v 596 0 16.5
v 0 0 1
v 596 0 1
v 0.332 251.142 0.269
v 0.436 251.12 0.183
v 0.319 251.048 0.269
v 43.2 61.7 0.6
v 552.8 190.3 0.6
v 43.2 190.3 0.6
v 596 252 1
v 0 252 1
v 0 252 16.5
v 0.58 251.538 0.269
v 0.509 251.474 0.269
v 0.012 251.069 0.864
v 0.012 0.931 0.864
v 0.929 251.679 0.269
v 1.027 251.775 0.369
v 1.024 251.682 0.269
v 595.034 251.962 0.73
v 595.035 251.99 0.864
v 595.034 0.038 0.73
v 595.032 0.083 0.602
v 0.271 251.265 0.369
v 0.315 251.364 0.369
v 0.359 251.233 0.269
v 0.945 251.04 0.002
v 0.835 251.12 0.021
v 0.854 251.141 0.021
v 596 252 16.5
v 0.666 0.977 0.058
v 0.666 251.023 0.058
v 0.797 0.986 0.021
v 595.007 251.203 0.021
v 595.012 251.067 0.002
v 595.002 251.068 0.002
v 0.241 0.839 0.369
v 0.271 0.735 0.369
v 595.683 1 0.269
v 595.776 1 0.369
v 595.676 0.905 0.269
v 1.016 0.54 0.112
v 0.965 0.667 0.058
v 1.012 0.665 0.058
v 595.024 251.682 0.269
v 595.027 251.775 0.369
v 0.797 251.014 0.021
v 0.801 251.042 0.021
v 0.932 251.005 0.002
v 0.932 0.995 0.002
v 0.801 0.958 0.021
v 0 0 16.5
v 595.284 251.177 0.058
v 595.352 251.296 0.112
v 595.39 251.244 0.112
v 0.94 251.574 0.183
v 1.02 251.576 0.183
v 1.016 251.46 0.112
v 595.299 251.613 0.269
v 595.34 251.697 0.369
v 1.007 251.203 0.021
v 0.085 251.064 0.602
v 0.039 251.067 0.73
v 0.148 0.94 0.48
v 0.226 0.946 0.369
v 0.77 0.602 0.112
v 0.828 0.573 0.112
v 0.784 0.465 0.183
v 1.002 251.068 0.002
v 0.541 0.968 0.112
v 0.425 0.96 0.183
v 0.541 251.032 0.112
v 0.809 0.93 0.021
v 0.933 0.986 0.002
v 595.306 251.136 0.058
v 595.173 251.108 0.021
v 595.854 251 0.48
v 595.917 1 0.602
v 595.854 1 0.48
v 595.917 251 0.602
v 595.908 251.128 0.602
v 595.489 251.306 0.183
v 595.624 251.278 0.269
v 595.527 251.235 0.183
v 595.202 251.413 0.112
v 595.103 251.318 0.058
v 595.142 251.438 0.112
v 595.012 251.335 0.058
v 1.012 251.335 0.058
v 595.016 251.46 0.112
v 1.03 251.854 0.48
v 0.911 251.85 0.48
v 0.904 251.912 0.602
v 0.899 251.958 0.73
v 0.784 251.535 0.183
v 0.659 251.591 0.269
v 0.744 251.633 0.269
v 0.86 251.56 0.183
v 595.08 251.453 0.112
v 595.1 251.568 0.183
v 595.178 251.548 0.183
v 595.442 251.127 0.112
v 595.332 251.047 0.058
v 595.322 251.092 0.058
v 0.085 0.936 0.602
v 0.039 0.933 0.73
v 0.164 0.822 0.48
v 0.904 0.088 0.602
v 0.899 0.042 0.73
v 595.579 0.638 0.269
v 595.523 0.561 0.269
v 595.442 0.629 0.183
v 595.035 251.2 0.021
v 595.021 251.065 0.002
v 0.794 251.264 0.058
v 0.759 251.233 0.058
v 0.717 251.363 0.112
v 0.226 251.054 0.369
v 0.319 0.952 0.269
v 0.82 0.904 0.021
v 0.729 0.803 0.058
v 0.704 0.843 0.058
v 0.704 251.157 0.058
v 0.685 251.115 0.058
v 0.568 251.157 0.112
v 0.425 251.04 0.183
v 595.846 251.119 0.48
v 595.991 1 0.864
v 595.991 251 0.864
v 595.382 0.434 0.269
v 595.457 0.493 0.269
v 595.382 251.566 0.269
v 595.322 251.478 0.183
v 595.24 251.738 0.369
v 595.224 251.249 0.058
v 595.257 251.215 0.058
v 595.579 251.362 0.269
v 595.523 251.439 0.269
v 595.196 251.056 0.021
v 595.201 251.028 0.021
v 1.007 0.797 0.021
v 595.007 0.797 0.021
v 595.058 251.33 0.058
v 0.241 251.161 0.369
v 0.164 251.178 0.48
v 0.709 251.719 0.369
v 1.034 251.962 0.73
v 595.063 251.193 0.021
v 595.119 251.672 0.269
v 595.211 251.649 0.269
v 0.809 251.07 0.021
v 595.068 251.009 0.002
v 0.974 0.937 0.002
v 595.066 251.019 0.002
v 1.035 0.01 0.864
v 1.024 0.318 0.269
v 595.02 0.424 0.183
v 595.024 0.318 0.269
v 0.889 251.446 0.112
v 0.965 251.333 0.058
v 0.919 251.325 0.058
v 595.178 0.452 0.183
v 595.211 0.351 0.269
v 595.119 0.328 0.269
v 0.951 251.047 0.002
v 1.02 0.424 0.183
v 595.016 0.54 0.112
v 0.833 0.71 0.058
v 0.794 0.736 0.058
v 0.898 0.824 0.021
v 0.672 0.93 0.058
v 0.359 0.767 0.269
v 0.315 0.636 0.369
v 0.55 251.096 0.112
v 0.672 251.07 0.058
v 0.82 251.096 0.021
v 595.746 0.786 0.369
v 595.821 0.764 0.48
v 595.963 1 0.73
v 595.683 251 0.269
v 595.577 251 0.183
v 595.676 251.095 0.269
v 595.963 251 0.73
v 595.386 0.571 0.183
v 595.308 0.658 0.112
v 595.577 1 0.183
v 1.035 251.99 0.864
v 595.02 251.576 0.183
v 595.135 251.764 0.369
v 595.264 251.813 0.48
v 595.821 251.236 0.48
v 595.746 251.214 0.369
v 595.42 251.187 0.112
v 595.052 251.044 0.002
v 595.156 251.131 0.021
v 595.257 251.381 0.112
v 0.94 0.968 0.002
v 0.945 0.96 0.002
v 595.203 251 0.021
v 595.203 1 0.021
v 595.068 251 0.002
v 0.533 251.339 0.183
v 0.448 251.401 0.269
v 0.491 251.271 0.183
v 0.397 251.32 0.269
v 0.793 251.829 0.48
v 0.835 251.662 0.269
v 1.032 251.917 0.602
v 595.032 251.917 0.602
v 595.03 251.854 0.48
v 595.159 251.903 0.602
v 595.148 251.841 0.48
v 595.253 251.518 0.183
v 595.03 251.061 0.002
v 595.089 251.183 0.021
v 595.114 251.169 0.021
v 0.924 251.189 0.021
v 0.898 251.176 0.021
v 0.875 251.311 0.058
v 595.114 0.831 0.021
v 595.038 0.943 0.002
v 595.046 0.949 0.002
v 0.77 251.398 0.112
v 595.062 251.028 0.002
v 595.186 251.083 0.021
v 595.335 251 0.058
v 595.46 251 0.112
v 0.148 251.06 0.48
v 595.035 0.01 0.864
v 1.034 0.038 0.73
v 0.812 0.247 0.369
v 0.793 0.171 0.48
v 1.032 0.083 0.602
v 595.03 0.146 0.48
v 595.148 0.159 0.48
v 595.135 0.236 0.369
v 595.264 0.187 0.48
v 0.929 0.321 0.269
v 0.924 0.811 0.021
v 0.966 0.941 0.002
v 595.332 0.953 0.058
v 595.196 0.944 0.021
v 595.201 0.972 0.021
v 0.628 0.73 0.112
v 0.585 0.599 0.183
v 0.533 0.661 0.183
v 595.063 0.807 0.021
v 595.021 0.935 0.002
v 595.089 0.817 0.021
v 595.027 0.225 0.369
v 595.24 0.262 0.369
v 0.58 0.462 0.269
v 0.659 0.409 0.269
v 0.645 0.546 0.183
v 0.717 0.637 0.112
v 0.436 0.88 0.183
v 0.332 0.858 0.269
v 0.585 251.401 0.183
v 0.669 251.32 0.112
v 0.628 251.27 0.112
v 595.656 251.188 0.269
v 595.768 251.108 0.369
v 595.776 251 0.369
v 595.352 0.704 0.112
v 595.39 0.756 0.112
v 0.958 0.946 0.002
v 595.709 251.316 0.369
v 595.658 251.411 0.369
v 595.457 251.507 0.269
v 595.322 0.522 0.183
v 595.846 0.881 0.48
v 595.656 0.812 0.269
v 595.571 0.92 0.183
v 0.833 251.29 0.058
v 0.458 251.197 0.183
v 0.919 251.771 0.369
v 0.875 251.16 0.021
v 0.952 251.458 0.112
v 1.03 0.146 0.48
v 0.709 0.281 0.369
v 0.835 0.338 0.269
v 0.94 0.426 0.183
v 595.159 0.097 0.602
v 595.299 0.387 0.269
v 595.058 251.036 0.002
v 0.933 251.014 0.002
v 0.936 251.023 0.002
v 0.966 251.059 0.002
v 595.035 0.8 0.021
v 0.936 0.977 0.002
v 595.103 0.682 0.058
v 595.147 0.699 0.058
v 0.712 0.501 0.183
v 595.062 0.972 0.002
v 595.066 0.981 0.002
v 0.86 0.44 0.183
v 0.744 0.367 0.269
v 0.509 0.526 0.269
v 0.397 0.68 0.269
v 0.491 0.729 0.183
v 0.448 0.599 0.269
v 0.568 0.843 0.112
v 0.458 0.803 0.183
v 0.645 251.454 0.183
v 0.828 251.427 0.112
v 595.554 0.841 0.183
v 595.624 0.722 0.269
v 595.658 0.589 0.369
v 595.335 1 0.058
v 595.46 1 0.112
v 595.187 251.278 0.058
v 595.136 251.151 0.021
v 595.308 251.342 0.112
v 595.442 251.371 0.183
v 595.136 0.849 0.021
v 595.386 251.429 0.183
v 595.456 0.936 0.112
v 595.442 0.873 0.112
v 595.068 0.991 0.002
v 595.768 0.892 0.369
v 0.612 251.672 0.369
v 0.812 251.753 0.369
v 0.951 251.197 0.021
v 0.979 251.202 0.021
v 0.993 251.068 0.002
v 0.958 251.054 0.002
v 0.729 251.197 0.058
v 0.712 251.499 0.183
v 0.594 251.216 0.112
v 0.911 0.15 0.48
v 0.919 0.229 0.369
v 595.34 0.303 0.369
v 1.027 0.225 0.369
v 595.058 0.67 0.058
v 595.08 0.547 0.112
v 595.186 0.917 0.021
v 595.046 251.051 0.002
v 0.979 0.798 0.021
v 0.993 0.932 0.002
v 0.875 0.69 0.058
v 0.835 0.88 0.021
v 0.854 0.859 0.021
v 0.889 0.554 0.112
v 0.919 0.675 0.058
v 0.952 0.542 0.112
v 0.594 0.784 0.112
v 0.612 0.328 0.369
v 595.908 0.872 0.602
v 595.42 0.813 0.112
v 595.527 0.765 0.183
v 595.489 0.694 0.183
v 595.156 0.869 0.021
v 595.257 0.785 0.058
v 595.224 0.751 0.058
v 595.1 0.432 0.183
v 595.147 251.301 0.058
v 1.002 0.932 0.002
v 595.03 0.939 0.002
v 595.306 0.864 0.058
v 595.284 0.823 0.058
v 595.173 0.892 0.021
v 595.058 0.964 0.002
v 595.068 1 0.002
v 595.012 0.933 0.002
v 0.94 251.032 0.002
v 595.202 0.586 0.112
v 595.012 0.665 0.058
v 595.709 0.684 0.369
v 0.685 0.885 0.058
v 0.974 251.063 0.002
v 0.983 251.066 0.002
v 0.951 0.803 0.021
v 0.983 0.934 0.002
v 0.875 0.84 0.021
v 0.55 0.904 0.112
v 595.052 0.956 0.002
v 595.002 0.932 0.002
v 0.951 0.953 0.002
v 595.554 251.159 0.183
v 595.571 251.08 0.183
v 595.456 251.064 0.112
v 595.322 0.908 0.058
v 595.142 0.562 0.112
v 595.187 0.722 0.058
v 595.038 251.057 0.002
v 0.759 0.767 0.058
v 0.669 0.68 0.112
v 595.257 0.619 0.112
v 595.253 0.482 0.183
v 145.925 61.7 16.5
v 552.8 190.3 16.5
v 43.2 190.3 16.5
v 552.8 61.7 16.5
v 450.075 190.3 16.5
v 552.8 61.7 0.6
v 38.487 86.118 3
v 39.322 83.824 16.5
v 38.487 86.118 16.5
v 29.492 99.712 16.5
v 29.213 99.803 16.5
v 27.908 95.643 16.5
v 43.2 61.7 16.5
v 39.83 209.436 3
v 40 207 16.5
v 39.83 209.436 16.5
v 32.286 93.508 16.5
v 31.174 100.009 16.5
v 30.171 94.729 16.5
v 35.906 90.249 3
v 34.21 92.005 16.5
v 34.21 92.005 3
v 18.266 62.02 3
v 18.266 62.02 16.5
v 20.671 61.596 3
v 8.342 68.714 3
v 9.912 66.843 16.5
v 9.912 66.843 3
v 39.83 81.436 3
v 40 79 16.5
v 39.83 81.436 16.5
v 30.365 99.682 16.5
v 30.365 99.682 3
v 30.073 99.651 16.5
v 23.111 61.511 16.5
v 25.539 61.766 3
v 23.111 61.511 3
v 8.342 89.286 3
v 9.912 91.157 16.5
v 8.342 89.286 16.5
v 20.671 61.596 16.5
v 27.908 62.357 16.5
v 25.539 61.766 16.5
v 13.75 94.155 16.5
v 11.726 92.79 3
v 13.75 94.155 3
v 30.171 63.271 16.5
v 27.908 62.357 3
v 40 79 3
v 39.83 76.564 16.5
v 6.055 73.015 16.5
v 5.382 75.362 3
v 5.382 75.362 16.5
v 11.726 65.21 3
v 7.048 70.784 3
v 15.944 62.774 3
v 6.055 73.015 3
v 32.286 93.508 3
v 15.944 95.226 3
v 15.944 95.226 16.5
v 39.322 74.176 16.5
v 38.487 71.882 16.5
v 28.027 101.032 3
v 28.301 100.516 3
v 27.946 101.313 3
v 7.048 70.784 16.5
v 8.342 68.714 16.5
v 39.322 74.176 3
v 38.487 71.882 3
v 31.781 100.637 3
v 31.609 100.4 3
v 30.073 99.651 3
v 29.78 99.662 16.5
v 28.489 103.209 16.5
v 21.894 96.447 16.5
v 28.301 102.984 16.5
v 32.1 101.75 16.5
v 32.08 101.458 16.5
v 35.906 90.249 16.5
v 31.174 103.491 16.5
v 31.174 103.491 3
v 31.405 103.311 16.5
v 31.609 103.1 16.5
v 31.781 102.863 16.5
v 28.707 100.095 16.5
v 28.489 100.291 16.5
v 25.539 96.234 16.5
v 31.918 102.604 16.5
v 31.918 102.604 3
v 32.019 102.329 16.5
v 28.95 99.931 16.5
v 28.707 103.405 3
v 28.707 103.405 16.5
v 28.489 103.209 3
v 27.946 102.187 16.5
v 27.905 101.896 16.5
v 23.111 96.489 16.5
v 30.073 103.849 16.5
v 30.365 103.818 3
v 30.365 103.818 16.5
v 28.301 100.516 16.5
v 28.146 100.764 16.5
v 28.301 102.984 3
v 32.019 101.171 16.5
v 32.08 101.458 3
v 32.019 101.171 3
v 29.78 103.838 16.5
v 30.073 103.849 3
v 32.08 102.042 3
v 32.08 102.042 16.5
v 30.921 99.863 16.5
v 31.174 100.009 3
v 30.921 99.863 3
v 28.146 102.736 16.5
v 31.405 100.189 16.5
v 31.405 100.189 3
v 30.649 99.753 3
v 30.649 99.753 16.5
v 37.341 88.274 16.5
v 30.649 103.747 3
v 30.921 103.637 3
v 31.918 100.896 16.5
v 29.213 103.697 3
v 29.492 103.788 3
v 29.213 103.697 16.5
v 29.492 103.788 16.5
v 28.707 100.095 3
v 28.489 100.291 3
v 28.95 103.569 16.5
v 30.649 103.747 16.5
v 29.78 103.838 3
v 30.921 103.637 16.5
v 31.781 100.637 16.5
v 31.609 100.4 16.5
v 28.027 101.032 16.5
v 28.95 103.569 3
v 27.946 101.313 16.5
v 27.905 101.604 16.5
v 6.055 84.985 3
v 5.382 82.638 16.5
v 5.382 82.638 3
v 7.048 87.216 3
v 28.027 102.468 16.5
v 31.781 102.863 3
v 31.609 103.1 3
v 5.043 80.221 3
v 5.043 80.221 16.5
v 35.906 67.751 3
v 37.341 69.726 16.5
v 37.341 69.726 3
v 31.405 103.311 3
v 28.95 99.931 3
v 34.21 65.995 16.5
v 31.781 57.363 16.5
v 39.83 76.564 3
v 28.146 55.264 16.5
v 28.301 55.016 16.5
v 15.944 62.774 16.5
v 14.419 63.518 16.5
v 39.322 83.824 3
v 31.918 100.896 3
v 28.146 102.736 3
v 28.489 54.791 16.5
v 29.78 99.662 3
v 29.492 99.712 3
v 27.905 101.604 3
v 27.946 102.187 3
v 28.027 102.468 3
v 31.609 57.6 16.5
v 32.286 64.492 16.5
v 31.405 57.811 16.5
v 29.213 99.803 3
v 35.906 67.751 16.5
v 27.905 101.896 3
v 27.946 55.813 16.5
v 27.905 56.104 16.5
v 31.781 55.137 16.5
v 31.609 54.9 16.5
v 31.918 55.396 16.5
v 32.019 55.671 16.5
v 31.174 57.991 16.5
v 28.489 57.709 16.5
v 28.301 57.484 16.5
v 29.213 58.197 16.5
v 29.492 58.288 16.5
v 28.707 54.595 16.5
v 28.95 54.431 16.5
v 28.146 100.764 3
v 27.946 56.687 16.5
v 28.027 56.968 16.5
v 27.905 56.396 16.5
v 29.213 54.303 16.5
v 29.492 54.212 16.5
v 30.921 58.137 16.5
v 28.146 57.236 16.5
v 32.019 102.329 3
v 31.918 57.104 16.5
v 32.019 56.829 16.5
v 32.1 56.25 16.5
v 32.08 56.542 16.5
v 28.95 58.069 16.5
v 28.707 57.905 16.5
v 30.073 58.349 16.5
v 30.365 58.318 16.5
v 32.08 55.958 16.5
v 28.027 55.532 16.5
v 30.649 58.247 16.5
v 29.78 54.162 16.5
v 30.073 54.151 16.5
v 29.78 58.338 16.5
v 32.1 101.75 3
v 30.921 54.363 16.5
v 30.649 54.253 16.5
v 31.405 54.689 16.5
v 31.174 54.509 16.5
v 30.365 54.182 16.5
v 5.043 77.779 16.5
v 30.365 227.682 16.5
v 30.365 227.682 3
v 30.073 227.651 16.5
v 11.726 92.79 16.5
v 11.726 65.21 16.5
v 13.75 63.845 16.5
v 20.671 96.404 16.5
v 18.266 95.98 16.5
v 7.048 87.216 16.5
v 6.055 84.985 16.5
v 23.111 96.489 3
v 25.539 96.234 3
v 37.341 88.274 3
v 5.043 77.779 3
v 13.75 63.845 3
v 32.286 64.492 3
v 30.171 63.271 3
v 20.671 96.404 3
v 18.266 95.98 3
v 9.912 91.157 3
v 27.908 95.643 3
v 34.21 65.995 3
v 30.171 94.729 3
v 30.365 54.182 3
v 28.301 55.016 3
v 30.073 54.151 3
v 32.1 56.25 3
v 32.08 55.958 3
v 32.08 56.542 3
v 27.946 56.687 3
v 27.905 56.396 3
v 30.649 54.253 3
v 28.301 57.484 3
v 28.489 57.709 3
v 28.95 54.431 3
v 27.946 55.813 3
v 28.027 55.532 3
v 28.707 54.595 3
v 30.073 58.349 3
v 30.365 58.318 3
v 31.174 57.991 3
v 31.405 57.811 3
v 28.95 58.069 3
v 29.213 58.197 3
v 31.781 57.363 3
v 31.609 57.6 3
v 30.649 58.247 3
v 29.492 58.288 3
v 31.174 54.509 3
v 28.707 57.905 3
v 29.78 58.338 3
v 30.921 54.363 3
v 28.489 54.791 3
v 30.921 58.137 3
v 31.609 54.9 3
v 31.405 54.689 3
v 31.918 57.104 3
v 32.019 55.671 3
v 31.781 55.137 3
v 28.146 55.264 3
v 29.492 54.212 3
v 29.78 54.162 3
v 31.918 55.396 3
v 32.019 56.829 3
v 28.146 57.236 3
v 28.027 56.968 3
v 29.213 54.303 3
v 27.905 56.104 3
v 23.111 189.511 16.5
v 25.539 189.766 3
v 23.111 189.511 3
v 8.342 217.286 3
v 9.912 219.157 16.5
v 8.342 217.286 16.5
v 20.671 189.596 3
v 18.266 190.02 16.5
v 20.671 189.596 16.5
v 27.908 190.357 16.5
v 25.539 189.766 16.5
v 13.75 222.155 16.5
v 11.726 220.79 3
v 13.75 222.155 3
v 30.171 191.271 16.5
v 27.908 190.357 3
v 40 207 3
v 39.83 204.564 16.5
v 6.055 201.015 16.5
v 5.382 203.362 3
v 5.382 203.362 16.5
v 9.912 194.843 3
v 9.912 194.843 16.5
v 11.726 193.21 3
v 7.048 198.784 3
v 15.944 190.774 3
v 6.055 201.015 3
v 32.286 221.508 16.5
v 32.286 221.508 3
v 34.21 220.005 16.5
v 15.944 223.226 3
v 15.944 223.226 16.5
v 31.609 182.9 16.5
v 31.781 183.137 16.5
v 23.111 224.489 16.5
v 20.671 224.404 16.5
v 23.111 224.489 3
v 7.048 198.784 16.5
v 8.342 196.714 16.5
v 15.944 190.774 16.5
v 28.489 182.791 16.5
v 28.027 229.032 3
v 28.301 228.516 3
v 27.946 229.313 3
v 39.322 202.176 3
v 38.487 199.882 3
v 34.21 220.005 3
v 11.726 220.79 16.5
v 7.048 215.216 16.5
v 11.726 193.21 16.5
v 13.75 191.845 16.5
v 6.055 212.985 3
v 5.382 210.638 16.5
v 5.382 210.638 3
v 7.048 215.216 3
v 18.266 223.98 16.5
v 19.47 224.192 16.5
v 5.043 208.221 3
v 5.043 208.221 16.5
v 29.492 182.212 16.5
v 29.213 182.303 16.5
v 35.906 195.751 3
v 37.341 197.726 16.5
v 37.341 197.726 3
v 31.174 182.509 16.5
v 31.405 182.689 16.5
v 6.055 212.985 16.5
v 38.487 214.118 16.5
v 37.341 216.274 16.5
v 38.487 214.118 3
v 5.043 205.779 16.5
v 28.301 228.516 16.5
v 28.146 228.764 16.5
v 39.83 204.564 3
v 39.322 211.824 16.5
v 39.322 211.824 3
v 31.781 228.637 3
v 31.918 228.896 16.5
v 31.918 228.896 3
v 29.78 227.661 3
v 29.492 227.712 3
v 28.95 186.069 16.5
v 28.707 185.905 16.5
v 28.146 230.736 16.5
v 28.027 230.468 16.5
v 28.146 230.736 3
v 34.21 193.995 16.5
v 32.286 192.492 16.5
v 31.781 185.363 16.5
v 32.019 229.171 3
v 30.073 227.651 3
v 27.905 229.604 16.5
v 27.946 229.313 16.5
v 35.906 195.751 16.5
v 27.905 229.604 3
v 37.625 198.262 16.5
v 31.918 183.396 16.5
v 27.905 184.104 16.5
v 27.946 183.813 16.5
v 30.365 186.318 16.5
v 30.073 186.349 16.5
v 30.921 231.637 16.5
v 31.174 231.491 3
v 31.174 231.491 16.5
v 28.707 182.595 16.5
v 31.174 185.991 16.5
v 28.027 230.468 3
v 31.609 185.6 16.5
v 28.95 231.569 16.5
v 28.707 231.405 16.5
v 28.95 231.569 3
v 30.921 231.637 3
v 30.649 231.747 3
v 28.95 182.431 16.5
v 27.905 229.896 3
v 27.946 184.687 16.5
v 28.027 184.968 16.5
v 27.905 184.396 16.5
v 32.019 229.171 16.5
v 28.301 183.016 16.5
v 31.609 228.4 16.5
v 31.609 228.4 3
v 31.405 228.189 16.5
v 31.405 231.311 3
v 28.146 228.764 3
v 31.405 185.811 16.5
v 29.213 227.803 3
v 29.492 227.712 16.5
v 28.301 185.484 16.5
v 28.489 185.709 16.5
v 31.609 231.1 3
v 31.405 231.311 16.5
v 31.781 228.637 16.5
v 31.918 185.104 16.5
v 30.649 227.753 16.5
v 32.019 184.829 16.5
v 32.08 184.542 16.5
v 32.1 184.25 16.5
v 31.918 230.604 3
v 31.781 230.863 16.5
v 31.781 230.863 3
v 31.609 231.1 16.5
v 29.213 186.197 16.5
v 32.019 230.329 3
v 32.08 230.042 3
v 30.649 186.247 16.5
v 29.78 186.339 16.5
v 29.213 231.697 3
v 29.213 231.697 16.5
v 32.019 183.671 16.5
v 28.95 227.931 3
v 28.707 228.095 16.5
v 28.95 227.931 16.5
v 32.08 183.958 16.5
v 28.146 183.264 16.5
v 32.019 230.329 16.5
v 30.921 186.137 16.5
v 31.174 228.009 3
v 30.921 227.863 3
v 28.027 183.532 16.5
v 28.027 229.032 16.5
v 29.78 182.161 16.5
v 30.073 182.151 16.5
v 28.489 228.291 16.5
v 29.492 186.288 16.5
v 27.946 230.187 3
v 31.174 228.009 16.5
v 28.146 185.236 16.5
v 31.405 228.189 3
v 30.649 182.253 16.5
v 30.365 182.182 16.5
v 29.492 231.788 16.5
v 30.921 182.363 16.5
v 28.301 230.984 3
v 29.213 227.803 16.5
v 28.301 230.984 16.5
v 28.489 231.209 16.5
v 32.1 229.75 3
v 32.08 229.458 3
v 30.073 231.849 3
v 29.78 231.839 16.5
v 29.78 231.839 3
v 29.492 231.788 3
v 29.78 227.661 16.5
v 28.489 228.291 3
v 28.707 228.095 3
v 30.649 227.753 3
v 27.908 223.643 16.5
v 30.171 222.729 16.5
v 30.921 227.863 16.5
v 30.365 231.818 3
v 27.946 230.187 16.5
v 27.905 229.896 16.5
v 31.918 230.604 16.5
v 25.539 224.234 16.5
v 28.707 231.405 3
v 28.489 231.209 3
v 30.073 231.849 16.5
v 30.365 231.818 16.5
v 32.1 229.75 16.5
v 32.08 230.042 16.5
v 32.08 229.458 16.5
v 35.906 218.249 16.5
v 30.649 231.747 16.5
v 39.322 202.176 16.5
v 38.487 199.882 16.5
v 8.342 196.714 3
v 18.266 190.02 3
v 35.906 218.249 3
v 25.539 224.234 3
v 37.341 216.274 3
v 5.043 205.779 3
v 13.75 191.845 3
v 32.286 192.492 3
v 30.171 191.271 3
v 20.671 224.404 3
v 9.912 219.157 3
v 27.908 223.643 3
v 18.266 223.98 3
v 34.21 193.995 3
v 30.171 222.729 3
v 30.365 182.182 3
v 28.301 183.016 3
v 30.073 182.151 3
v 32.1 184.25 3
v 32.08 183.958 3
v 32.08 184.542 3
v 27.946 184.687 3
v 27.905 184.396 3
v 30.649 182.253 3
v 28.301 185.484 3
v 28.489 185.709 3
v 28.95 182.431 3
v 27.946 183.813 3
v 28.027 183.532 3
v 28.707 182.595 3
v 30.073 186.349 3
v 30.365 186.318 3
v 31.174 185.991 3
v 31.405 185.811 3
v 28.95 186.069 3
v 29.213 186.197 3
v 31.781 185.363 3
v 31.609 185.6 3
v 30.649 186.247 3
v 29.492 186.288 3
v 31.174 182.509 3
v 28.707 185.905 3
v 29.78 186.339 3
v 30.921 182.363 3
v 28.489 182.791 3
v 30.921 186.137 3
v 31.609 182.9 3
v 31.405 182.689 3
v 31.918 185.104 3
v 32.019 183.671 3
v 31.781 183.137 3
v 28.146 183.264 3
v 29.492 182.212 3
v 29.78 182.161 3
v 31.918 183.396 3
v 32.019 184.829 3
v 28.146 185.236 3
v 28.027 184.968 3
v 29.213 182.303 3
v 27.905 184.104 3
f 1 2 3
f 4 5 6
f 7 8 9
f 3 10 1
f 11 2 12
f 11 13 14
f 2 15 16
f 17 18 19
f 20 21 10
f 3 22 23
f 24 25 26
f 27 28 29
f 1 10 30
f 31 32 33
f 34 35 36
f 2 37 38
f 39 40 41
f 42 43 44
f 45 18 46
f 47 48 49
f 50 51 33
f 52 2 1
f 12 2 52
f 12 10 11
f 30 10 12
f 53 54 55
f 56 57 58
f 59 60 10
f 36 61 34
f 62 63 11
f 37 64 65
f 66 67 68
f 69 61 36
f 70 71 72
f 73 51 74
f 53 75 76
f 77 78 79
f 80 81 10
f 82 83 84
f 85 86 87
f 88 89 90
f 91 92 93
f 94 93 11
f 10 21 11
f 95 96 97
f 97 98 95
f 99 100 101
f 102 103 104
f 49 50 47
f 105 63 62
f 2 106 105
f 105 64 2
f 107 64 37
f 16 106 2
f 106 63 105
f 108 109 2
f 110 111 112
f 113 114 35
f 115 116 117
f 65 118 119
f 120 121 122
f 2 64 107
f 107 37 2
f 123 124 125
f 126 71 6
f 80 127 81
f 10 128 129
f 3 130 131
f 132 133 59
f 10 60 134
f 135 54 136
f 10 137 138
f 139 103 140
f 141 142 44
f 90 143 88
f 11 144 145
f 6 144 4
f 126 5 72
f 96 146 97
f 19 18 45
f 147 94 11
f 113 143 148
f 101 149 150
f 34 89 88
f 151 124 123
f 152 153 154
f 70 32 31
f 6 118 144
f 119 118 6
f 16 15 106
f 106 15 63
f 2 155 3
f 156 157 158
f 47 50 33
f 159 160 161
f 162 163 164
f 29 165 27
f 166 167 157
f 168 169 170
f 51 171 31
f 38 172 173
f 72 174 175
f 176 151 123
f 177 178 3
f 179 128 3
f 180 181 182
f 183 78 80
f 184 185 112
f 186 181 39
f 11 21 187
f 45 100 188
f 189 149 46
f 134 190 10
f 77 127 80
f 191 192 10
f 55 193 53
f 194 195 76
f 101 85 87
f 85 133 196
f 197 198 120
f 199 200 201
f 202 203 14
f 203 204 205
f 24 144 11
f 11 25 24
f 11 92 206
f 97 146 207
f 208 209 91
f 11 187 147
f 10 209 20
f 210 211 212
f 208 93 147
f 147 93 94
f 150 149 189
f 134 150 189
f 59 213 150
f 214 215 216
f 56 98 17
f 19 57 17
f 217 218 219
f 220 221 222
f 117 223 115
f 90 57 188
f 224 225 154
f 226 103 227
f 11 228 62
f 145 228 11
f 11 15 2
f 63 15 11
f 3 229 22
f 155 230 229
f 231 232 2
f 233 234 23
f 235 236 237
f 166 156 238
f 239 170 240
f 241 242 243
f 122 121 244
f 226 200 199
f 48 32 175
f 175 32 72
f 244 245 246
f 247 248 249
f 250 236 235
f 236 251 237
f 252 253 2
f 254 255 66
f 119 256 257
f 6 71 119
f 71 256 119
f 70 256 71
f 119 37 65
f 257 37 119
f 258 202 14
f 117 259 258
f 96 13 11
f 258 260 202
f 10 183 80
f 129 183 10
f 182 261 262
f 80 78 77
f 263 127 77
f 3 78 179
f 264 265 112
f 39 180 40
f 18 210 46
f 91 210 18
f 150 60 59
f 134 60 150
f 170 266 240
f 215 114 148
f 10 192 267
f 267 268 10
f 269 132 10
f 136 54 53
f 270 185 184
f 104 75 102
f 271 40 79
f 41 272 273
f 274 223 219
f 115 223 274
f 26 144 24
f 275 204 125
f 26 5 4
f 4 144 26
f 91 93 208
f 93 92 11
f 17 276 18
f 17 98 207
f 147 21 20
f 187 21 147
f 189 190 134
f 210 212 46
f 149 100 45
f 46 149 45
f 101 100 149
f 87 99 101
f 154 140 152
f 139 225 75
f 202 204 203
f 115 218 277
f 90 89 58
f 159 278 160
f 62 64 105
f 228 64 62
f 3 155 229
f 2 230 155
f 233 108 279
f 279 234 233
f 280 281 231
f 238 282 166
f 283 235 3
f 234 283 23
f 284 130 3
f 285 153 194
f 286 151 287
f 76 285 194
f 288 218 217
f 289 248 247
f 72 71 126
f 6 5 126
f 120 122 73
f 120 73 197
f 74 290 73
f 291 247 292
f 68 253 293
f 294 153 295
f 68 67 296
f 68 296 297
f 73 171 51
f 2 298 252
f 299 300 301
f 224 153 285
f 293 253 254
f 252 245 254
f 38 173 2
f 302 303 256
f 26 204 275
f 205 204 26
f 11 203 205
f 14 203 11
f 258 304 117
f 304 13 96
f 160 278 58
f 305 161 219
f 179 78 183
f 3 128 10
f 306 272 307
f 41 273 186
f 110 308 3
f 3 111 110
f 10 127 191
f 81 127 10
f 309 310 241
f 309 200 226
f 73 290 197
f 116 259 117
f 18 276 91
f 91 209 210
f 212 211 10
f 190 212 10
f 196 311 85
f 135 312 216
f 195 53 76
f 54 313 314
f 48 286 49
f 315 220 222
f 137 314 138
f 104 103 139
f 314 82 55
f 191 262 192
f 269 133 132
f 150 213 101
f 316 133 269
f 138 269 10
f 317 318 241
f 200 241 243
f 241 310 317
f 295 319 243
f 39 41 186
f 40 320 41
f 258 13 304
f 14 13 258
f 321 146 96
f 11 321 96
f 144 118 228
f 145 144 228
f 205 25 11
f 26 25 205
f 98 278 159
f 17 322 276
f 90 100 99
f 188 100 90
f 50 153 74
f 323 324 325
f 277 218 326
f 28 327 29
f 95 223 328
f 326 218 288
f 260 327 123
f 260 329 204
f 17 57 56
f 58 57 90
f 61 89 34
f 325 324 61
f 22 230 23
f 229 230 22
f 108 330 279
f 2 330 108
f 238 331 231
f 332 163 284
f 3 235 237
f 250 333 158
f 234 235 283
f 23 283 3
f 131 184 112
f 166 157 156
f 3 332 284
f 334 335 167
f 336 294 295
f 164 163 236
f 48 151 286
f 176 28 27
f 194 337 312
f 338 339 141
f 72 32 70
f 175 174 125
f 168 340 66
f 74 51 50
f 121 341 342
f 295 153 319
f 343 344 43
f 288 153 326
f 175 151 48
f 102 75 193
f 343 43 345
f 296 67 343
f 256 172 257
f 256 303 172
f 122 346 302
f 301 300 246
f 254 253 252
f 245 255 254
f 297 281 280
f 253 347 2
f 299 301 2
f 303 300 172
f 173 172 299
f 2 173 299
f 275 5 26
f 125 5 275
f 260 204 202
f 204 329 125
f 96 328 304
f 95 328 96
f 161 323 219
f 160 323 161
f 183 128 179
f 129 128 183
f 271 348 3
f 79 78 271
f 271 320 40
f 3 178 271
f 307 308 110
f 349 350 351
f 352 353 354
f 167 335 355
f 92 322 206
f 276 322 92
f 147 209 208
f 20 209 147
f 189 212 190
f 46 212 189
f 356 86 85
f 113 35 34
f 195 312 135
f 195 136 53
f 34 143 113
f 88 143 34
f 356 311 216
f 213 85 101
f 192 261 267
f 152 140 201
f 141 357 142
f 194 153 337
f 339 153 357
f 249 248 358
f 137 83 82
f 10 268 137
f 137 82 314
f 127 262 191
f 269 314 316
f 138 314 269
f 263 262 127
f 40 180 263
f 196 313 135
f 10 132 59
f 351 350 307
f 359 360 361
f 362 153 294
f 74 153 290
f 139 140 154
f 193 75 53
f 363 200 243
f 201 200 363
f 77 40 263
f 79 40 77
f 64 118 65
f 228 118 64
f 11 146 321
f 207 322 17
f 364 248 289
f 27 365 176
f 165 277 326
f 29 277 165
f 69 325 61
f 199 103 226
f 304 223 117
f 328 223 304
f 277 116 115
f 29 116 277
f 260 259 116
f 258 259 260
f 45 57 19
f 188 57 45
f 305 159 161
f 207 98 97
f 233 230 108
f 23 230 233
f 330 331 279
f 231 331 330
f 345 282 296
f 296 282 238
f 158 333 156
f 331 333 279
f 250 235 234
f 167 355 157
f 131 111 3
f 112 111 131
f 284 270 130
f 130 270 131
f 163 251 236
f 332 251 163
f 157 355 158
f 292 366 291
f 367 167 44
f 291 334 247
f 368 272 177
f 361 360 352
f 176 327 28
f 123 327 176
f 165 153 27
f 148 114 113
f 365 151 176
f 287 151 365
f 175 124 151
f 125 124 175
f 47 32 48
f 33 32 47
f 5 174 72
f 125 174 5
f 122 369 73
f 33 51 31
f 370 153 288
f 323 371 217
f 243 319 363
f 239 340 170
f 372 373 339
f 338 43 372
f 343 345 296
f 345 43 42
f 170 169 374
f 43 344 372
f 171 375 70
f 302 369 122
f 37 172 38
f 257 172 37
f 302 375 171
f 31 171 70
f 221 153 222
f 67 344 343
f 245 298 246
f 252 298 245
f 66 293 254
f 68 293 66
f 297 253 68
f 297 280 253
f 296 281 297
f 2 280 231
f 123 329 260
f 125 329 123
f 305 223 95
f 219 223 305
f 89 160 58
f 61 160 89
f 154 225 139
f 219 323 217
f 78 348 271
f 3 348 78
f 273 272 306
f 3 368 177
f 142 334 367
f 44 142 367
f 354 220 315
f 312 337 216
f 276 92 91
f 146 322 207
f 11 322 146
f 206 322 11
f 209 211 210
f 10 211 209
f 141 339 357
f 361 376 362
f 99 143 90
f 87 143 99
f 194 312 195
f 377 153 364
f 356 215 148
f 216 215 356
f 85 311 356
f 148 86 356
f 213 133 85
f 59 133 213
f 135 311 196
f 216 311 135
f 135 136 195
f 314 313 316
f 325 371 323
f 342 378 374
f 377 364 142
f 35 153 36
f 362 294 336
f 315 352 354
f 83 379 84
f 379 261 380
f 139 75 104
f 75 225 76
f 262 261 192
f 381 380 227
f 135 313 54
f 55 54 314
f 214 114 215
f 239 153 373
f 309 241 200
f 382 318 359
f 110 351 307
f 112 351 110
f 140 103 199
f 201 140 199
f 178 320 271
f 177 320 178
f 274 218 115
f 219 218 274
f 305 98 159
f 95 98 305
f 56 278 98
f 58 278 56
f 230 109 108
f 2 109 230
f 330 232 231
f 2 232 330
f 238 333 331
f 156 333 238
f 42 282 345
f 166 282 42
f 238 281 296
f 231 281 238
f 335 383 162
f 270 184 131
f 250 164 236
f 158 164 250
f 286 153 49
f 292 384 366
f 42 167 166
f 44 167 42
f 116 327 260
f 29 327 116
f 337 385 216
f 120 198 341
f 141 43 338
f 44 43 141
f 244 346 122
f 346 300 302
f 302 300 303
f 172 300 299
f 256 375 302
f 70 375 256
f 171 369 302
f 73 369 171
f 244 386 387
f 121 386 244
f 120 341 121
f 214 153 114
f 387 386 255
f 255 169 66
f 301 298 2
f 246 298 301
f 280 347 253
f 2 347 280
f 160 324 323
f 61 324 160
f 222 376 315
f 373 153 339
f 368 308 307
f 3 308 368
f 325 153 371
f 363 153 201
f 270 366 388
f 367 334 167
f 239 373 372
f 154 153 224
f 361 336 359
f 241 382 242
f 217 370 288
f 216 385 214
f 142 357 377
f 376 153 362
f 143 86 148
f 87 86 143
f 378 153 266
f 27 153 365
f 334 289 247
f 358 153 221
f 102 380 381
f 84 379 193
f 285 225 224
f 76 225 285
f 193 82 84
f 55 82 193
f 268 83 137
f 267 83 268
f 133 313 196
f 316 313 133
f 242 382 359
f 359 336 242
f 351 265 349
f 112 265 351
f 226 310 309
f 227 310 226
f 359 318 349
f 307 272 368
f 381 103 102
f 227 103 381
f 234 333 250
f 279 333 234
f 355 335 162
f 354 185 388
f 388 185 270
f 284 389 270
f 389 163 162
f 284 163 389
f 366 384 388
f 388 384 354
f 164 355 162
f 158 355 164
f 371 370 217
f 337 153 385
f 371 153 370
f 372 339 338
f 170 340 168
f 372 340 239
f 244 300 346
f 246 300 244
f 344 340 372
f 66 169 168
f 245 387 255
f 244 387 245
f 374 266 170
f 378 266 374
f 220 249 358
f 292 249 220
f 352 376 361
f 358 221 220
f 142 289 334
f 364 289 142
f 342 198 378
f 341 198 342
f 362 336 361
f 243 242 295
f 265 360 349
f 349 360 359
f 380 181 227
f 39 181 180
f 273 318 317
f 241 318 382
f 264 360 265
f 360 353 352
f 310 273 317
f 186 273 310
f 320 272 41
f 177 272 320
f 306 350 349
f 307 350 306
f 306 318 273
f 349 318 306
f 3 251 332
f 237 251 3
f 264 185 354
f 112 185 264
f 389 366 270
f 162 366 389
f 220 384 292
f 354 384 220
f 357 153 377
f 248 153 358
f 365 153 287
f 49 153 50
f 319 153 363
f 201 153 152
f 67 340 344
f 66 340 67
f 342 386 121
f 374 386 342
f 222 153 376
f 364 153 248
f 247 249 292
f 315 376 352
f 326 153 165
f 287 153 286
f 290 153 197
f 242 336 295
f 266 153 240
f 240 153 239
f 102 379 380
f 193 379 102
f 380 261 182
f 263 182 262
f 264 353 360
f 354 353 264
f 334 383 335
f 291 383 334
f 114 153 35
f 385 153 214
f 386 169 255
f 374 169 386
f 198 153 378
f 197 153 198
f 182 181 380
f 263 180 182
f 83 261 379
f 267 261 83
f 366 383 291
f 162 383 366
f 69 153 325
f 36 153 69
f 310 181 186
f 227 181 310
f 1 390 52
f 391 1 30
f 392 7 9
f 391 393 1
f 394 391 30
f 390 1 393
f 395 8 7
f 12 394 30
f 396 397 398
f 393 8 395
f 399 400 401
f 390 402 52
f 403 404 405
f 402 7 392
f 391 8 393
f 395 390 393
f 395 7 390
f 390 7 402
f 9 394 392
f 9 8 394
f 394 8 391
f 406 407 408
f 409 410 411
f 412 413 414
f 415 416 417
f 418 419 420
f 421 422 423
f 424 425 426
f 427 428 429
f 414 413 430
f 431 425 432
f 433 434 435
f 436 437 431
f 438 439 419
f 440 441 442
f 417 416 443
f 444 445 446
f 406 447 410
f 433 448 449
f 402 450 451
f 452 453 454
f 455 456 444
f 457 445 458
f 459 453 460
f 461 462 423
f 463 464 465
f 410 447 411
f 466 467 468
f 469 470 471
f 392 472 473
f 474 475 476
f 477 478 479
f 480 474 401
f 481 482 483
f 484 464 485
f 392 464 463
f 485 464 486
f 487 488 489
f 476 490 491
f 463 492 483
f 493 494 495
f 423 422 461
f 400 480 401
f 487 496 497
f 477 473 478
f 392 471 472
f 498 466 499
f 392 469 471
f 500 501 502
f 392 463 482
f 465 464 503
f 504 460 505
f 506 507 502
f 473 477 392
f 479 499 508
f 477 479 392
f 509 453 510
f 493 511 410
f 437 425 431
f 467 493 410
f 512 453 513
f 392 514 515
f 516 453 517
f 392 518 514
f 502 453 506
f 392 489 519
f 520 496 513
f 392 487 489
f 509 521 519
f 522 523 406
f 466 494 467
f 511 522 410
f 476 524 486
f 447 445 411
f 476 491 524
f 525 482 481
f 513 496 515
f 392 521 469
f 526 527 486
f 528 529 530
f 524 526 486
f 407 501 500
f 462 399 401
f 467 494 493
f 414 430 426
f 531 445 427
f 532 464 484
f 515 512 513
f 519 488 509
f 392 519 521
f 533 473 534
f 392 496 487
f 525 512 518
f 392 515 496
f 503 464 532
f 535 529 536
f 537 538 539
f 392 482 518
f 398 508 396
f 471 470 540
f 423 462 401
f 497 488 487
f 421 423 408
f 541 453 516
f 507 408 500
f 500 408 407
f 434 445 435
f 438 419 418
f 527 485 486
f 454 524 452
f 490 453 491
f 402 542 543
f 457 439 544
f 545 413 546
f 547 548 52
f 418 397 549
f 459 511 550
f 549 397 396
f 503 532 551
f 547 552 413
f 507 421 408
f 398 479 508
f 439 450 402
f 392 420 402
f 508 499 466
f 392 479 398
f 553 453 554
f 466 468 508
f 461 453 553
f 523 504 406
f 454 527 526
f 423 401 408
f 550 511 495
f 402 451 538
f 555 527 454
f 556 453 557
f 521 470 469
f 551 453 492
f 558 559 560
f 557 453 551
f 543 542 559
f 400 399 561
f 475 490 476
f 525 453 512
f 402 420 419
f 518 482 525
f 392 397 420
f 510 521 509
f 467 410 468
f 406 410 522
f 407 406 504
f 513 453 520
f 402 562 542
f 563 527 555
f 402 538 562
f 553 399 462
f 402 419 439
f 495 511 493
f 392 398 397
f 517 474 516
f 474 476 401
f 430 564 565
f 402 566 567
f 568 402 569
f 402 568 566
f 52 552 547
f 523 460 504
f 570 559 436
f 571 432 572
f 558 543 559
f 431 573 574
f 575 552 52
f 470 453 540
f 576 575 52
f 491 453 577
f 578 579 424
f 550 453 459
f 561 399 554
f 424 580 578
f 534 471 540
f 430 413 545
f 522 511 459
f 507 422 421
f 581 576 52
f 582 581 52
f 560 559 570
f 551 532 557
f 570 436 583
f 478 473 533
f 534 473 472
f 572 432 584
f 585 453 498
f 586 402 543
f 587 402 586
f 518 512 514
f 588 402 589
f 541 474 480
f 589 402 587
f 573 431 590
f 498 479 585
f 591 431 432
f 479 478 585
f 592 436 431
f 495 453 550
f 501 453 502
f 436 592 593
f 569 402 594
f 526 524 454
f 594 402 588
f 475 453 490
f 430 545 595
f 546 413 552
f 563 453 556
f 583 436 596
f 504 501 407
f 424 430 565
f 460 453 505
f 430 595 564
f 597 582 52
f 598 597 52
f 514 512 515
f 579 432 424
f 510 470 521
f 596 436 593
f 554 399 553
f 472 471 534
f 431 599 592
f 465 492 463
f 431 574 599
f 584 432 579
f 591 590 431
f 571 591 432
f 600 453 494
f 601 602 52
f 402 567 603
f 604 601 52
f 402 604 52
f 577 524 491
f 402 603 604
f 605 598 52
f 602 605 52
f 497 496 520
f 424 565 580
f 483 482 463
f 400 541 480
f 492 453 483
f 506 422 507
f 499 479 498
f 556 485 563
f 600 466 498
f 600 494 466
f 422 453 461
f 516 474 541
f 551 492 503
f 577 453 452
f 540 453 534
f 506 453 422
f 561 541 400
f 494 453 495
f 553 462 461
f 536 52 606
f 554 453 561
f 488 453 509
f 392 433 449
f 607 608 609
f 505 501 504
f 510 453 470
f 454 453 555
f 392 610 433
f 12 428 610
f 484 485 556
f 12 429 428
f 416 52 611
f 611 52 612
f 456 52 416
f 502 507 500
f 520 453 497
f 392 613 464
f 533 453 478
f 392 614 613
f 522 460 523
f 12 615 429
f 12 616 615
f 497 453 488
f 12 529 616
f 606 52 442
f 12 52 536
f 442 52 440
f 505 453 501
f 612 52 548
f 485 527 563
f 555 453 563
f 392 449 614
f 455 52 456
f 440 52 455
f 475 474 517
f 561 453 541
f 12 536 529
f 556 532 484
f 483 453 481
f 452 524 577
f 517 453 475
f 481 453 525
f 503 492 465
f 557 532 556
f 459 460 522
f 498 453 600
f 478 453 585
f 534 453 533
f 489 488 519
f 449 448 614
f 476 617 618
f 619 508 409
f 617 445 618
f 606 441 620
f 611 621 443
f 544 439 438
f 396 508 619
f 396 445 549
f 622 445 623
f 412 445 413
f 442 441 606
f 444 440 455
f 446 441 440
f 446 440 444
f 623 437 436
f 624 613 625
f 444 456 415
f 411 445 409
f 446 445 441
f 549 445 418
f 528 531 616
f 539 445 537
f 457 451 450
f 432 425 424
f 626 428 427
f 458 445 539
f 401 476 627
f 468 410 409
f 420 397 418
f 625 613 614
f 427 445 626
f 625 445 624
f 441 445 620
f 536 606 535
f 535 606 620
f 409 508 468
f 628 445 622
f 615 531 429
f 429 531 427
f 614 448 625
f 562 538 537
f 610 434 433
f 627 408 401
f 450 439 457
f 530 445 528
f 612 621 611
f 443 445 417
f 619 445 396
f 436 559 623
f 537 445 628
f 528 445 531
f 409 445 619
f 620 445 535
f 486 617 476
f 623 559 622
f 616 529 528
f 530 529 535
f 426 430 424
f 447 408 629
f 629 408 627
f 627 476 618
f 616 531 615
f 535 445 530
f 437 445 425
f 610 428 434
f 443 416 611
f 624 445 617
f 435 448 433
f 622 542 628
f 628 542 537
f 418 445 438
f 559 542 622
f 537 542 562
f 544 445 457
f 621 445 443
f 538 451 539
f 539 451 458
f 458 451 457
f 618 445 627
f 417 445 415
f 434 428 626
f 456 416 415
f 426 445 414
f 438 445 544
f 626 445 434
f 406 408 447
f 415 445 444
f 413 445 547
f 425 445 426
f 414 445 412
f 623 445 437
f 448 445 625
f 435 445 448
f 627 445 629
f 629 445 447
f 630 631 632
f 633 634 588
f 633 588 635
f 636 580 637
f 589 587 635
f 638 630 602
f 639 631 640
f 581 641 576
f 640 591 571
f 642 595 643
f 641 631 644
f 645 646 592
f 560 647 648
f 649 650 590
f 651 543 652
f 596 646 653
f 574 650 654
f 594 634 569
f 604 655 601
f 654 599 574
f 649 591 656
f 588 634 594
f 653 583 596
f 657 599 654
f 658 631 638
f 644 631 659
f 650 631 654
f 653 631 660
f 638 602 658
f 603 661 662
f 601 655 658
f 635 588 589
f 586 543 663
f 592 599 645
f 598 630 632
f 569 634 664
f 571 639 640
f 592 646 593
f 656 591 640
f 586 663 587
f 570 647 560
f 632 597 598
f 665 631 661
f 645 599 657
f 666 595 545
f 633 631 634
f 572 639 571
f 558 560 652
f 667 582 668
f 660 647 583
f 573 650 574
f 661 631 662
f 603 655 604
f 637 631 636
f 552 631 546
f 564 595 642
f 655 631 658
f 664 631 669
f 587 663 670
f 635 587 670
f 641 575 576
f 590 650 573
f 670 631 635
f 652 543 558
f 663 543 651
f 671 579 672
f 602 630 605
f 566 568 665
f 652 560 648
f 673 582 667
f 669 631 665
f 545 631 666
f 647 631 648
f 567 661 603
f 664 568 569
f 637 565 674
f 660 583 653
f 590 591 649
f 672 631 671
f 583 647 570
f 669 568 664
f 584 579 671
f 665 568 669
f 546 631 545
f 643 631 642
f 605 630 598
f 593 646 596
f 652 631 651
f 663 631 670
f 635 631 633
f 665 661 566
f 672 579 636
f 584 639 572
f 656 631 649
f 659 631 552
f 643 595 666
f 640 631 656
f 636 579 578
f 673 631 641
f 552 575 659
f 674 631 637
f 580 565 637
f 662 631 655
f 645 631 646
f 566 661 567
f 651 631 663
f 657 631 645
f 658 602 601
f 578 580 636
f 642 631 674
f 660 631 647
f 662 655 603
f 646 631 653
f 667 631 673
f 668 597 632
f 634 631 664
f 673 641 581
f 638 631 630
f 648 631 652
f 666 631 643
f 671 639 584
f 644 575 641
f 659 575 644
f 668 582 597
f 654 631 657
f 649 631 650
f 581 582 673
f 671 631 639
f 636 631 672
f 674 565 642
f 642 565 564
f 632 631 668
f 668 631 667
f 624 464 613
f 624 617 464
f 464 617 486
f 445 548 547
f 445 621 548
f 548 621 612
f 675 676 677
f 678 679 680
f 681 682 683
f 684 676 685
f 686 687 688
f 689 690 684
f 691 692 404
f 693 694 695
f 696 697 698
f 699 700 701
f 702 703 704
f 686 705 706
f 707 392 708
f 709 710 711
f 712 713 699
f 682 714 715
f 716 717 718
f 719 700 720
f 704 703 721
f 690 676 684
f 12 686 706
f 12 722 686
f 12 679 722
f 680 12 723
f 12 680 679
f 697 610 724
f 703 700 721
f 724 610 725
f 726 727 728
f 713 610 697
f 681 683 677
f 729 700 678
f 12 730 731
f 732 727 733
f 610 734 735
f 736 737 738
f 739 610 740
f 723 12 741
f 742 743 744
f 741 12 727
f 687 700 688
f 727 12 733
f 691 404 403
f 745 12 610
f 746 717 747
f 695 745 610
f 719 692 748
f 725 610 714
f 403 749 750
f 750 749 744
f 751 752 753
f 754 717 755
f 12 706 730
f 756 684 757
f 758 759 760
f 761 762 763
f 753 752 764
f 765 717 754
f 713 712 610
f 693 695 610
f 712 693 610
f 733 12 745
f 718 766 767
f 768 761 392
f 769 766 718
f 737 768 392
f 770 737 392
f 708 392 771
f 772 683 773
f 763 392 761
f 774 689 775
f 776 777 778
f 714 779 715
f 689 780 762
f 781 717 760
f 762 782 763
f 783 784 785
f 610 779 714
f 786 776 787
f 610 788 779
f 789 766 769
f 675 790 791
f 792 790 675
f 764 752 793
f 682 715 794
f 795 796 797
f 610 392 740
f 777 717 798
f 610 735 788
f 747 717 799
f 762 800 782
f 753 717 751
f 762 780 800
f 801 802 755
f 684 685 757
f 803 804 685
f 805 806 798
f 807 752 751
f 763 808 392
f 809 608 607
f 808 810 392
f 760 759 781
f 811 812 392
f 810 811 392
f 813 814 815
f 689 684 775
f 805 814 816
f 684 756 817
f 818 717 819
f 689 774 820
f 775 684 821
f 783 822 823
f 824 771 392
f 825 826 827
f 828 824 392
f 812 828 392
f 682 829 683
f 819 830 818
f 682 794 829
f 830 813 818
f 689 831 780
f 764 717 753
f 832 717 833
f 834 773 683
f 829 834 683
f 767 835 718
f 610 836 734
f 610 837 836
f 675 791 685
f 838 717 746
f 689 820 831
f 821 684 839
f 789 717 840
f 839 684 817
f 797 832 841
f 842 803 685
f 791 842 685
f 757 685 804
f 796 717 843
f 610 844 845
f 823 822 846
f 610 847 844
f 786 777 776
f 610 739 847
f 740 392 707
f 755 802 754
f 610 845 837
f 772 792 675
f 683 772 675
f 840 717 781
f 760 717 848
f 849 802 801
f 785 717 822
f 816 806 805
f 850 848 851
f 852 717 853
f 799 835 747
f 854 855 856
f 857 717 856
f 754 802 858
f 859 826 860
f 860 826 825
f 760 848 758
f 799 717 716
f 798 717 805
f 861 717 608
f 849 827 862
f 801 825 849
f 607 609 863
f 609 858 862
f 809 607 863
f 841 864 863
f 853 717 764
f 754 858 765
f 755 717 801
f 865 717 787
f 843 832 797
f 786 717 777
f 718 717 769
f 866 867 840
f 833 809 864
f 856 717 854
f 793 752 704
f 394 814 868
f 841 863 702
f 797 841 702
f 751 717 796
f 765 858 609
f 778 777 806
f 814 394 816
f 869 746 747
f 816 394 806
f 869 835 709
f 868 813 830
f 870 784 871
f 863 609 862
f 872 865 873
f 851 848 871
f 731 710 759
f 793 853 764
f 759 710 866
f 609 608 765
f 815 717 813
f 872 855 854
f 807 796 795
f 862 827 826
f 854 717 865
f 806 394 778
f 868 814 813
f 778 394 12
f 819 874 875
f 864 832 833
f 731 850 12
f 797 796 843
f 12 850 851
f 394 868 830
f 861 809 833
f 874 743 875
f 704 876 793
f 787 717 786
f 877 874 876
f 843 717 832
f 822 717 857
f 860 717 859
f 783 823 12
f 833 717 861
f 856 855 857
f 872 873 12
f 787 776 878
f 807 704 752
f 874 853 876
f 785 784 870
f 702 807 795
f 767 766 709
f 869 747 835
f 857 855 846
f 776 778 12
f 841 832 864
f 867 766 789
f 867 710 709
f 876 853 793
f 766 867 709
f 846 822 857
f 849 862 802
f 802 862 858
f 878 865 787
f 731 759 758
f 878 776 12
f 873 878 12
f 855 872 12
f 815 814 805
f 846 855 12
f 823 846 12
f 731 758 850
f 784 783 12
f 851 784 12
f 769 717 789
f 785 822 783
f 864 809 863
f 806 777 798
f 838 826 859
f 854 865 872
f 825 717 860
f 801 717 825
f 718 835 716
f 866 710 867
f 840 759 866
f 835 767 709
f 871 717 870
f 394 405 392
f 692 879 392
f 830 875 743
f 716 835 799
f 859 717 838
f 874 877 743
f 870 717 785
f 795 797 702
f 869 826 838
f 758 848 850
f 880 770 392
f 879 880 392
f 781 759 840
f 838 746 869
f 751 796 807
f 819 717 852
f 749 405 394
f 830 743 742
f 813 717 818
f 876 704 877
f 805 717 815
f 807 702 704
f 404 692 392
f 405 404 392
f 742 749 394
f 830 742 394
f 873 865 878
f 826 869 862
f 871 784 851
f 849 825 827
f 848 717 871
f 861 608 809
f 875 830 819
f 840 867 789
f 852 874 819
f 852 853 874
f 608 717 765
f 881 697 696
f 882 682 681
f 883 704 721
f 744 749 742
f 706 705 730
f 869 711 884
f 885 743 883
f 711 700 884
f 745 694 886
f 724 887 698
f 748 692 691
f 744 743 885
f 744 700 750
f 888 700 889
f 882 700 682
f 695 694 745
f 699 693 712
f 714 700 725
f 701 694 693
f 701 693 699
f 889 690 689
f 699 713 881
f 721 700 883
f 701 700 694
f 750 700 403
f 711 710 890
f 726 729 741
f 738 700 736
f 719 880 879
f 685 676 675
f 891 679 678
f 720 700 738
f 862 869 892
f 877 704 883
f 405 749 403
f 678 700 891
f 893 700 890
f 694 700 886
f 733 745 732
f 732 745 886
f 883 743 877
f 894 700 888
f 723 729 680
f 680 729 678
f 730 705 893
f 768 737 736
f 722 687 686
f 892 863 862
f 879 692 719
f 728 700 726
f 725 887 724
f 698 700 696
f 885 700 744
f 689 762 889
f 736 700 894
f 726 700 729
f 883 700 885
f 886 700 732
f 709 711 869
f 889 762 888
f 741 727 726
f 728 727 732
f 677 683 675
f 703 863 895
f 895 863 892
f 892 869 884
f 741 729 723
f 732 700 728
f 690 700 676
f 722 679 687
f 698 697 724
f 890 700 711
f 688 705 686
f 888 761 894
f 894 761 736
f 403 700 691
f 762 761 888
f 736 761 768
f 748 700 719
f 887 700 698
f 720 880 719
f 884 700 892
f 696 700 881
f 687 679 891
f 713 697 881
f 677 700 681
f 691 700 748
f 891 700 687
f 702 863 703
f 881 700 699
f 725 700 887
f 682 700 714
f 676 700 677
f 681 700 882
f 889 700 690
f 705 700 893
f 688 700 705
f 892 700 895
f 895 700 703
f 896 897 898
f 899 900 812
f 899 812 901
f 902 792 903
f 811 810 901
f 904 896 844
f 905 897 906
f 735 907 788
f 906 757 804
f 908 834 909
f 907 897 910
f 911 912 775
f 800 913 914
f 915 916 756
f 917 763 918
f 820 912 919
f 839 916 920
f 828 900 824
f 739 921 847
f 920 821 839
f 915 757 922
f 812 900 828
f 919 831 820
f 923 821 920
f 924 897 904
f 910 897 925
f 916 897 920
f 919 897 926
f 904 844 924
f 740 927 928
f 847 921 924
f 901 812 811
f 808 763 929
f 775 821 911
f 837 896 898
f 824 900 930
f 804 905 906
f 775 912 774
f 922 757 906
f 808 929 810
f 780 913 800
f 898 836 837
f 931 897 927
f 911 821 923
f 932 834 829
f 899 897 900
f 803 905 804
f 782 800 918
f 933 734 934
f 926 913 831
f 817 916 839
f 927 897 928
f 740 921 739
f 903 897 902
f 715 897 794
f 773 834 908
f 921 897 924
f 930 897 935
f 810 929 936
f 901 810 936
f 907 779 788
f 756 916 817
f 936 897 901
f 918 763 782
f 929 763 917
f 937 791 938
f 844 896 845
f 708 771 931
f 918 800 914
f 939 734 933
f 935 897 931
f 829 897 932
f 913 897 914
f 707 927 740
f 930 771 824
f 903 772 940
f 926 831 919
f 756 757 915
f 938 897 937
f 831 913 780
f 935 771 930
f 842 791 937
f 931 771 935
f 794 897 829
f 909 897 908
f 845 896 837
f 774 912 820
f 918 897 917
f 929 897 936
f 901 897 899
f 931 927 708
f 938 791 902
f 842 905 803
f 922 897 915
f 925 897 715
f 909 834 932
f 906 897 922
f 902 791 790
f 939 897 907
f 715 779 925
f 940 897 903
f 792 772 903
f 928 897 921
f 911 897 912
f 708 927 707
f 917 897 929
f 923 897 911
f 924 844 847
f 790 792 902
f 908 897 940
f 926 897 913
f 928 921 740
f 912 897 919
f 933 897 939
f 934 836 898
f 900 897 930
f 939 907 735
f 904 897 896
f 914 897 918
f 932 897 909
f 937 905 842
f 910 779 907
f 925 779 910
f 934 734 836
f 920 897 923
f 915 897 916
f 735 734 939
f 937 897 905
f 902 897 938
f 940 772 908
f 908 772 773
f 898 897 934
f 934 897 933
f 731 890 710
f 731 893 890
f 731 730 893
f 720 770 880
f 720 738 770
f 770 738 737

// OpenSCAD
/* A door for IKEA Besta systems */
$fn = 45;

// TODO: Add slot for Raspberry Pi Pico in the bottom of the door (to avoid crashing with the cabinet top)
//       Unless it can be mounted on the back of the LED panels?
// TODO: Can we split the door in OpenSCAD instead of the slicer? Would make iterating easier.

// Door outer dimensions
door_width = 596; // Confirmed
door_height = 252; // Confirmed
door_depth = 16.5; // Confirmed
// This is the thickness of the "see-through" part. 0.6mm is 3 layers at .2mm layer height
door_diffuser_thickness = 0.6;

// Hinge parameters
hinge_main_diameter = 35; // confirmed
hinge_radius = hinge_main_diameter / 2;
hinge_depth = 13.5; // confirmed
hinge_screw_diameter = 4.2; // confirmed, but we might want other screws?
hinge_screw_distance = 45.5; // confirmed
hinge_screw_side_offset = 30 - 5; // confirmed
// Offset from side of door (to center of hinge)
hinge_side_offset = 5 + hinge_radius; // confirmed
// Offset from top of door to first hinge 
top_hinge_offset = 61.5 + hinge_radius; // confirmed
// Distance between hinges (top to top)
hinge_step_distance = 32; // confirmed
hinge_distance_offset = hinge_step_distance * 4; 

// LED panel dimensions
// Sizes from https://www.digikey.no/no/products/detail/adafruit-industries-llc/2278/7035036
led_tolerance = 1.6; // Allow for some shrinkage
led_width = 254 * 2 + led_tolerance; // Confirmed
led_height = 127 + led_tolerance; // Confirmed
led_depth = door_depth - door_diffuser_thickness;

difference() {
    door();
    translate([hinge_side_offset, 
               top_hinge_offset,
               door_depth - hinge_depth])
        hinge_holes();
    translate([hinge_side_offset,
               top_hinge_offset + hinge_distance_offset,
               door_depth - hinge_depth])
        hinge_holes();
}

module hinge_holes() {
    cylinder(h=hinge_depth, d=hinge_main_diameter, center=false);
    translate([hinge_screw_side_offset - hinge_radius, hinge_screw_distance / 2, 0]) 
        cylinder(h=hinge_depth, d=hinge_screw_diameter, center=false);
    translate([hinge_screw_side_offset - hinge_radius, hinge_screw_distance / -2, 0]) 
        cylinder(h=hinge_depth, d=hinge_screw_diameter, center=false);
}

module door() {
    difference() {
        door_panel();

        // Led panel
        translate([(door_width-led_width) / 2,
                   (door_height-led_height) / 2,
                   door_diffuser_thickness])
            cube([led_width, led_height, led_depth], center=false);
    }    
}

module door_panel() {
    rounding = 1;

    // Full door
    hull() {
        translate([0,0,rounding]) 
            cube([door_width, door_height, door_depth-rounding], center=false);
        translate([rounding, rounding, rounding])
            sphere(r=rounding);
        translate([door_width-rounding, rounding, rounding])
            sphere(r=rounding);
        translate([rounding, door_height-rounding, rounding])
            sphere(r=rounding);
        translate([door_width-rounding, door_height-rounding, rounding])
            sphere(r=rounding);
    }
}
